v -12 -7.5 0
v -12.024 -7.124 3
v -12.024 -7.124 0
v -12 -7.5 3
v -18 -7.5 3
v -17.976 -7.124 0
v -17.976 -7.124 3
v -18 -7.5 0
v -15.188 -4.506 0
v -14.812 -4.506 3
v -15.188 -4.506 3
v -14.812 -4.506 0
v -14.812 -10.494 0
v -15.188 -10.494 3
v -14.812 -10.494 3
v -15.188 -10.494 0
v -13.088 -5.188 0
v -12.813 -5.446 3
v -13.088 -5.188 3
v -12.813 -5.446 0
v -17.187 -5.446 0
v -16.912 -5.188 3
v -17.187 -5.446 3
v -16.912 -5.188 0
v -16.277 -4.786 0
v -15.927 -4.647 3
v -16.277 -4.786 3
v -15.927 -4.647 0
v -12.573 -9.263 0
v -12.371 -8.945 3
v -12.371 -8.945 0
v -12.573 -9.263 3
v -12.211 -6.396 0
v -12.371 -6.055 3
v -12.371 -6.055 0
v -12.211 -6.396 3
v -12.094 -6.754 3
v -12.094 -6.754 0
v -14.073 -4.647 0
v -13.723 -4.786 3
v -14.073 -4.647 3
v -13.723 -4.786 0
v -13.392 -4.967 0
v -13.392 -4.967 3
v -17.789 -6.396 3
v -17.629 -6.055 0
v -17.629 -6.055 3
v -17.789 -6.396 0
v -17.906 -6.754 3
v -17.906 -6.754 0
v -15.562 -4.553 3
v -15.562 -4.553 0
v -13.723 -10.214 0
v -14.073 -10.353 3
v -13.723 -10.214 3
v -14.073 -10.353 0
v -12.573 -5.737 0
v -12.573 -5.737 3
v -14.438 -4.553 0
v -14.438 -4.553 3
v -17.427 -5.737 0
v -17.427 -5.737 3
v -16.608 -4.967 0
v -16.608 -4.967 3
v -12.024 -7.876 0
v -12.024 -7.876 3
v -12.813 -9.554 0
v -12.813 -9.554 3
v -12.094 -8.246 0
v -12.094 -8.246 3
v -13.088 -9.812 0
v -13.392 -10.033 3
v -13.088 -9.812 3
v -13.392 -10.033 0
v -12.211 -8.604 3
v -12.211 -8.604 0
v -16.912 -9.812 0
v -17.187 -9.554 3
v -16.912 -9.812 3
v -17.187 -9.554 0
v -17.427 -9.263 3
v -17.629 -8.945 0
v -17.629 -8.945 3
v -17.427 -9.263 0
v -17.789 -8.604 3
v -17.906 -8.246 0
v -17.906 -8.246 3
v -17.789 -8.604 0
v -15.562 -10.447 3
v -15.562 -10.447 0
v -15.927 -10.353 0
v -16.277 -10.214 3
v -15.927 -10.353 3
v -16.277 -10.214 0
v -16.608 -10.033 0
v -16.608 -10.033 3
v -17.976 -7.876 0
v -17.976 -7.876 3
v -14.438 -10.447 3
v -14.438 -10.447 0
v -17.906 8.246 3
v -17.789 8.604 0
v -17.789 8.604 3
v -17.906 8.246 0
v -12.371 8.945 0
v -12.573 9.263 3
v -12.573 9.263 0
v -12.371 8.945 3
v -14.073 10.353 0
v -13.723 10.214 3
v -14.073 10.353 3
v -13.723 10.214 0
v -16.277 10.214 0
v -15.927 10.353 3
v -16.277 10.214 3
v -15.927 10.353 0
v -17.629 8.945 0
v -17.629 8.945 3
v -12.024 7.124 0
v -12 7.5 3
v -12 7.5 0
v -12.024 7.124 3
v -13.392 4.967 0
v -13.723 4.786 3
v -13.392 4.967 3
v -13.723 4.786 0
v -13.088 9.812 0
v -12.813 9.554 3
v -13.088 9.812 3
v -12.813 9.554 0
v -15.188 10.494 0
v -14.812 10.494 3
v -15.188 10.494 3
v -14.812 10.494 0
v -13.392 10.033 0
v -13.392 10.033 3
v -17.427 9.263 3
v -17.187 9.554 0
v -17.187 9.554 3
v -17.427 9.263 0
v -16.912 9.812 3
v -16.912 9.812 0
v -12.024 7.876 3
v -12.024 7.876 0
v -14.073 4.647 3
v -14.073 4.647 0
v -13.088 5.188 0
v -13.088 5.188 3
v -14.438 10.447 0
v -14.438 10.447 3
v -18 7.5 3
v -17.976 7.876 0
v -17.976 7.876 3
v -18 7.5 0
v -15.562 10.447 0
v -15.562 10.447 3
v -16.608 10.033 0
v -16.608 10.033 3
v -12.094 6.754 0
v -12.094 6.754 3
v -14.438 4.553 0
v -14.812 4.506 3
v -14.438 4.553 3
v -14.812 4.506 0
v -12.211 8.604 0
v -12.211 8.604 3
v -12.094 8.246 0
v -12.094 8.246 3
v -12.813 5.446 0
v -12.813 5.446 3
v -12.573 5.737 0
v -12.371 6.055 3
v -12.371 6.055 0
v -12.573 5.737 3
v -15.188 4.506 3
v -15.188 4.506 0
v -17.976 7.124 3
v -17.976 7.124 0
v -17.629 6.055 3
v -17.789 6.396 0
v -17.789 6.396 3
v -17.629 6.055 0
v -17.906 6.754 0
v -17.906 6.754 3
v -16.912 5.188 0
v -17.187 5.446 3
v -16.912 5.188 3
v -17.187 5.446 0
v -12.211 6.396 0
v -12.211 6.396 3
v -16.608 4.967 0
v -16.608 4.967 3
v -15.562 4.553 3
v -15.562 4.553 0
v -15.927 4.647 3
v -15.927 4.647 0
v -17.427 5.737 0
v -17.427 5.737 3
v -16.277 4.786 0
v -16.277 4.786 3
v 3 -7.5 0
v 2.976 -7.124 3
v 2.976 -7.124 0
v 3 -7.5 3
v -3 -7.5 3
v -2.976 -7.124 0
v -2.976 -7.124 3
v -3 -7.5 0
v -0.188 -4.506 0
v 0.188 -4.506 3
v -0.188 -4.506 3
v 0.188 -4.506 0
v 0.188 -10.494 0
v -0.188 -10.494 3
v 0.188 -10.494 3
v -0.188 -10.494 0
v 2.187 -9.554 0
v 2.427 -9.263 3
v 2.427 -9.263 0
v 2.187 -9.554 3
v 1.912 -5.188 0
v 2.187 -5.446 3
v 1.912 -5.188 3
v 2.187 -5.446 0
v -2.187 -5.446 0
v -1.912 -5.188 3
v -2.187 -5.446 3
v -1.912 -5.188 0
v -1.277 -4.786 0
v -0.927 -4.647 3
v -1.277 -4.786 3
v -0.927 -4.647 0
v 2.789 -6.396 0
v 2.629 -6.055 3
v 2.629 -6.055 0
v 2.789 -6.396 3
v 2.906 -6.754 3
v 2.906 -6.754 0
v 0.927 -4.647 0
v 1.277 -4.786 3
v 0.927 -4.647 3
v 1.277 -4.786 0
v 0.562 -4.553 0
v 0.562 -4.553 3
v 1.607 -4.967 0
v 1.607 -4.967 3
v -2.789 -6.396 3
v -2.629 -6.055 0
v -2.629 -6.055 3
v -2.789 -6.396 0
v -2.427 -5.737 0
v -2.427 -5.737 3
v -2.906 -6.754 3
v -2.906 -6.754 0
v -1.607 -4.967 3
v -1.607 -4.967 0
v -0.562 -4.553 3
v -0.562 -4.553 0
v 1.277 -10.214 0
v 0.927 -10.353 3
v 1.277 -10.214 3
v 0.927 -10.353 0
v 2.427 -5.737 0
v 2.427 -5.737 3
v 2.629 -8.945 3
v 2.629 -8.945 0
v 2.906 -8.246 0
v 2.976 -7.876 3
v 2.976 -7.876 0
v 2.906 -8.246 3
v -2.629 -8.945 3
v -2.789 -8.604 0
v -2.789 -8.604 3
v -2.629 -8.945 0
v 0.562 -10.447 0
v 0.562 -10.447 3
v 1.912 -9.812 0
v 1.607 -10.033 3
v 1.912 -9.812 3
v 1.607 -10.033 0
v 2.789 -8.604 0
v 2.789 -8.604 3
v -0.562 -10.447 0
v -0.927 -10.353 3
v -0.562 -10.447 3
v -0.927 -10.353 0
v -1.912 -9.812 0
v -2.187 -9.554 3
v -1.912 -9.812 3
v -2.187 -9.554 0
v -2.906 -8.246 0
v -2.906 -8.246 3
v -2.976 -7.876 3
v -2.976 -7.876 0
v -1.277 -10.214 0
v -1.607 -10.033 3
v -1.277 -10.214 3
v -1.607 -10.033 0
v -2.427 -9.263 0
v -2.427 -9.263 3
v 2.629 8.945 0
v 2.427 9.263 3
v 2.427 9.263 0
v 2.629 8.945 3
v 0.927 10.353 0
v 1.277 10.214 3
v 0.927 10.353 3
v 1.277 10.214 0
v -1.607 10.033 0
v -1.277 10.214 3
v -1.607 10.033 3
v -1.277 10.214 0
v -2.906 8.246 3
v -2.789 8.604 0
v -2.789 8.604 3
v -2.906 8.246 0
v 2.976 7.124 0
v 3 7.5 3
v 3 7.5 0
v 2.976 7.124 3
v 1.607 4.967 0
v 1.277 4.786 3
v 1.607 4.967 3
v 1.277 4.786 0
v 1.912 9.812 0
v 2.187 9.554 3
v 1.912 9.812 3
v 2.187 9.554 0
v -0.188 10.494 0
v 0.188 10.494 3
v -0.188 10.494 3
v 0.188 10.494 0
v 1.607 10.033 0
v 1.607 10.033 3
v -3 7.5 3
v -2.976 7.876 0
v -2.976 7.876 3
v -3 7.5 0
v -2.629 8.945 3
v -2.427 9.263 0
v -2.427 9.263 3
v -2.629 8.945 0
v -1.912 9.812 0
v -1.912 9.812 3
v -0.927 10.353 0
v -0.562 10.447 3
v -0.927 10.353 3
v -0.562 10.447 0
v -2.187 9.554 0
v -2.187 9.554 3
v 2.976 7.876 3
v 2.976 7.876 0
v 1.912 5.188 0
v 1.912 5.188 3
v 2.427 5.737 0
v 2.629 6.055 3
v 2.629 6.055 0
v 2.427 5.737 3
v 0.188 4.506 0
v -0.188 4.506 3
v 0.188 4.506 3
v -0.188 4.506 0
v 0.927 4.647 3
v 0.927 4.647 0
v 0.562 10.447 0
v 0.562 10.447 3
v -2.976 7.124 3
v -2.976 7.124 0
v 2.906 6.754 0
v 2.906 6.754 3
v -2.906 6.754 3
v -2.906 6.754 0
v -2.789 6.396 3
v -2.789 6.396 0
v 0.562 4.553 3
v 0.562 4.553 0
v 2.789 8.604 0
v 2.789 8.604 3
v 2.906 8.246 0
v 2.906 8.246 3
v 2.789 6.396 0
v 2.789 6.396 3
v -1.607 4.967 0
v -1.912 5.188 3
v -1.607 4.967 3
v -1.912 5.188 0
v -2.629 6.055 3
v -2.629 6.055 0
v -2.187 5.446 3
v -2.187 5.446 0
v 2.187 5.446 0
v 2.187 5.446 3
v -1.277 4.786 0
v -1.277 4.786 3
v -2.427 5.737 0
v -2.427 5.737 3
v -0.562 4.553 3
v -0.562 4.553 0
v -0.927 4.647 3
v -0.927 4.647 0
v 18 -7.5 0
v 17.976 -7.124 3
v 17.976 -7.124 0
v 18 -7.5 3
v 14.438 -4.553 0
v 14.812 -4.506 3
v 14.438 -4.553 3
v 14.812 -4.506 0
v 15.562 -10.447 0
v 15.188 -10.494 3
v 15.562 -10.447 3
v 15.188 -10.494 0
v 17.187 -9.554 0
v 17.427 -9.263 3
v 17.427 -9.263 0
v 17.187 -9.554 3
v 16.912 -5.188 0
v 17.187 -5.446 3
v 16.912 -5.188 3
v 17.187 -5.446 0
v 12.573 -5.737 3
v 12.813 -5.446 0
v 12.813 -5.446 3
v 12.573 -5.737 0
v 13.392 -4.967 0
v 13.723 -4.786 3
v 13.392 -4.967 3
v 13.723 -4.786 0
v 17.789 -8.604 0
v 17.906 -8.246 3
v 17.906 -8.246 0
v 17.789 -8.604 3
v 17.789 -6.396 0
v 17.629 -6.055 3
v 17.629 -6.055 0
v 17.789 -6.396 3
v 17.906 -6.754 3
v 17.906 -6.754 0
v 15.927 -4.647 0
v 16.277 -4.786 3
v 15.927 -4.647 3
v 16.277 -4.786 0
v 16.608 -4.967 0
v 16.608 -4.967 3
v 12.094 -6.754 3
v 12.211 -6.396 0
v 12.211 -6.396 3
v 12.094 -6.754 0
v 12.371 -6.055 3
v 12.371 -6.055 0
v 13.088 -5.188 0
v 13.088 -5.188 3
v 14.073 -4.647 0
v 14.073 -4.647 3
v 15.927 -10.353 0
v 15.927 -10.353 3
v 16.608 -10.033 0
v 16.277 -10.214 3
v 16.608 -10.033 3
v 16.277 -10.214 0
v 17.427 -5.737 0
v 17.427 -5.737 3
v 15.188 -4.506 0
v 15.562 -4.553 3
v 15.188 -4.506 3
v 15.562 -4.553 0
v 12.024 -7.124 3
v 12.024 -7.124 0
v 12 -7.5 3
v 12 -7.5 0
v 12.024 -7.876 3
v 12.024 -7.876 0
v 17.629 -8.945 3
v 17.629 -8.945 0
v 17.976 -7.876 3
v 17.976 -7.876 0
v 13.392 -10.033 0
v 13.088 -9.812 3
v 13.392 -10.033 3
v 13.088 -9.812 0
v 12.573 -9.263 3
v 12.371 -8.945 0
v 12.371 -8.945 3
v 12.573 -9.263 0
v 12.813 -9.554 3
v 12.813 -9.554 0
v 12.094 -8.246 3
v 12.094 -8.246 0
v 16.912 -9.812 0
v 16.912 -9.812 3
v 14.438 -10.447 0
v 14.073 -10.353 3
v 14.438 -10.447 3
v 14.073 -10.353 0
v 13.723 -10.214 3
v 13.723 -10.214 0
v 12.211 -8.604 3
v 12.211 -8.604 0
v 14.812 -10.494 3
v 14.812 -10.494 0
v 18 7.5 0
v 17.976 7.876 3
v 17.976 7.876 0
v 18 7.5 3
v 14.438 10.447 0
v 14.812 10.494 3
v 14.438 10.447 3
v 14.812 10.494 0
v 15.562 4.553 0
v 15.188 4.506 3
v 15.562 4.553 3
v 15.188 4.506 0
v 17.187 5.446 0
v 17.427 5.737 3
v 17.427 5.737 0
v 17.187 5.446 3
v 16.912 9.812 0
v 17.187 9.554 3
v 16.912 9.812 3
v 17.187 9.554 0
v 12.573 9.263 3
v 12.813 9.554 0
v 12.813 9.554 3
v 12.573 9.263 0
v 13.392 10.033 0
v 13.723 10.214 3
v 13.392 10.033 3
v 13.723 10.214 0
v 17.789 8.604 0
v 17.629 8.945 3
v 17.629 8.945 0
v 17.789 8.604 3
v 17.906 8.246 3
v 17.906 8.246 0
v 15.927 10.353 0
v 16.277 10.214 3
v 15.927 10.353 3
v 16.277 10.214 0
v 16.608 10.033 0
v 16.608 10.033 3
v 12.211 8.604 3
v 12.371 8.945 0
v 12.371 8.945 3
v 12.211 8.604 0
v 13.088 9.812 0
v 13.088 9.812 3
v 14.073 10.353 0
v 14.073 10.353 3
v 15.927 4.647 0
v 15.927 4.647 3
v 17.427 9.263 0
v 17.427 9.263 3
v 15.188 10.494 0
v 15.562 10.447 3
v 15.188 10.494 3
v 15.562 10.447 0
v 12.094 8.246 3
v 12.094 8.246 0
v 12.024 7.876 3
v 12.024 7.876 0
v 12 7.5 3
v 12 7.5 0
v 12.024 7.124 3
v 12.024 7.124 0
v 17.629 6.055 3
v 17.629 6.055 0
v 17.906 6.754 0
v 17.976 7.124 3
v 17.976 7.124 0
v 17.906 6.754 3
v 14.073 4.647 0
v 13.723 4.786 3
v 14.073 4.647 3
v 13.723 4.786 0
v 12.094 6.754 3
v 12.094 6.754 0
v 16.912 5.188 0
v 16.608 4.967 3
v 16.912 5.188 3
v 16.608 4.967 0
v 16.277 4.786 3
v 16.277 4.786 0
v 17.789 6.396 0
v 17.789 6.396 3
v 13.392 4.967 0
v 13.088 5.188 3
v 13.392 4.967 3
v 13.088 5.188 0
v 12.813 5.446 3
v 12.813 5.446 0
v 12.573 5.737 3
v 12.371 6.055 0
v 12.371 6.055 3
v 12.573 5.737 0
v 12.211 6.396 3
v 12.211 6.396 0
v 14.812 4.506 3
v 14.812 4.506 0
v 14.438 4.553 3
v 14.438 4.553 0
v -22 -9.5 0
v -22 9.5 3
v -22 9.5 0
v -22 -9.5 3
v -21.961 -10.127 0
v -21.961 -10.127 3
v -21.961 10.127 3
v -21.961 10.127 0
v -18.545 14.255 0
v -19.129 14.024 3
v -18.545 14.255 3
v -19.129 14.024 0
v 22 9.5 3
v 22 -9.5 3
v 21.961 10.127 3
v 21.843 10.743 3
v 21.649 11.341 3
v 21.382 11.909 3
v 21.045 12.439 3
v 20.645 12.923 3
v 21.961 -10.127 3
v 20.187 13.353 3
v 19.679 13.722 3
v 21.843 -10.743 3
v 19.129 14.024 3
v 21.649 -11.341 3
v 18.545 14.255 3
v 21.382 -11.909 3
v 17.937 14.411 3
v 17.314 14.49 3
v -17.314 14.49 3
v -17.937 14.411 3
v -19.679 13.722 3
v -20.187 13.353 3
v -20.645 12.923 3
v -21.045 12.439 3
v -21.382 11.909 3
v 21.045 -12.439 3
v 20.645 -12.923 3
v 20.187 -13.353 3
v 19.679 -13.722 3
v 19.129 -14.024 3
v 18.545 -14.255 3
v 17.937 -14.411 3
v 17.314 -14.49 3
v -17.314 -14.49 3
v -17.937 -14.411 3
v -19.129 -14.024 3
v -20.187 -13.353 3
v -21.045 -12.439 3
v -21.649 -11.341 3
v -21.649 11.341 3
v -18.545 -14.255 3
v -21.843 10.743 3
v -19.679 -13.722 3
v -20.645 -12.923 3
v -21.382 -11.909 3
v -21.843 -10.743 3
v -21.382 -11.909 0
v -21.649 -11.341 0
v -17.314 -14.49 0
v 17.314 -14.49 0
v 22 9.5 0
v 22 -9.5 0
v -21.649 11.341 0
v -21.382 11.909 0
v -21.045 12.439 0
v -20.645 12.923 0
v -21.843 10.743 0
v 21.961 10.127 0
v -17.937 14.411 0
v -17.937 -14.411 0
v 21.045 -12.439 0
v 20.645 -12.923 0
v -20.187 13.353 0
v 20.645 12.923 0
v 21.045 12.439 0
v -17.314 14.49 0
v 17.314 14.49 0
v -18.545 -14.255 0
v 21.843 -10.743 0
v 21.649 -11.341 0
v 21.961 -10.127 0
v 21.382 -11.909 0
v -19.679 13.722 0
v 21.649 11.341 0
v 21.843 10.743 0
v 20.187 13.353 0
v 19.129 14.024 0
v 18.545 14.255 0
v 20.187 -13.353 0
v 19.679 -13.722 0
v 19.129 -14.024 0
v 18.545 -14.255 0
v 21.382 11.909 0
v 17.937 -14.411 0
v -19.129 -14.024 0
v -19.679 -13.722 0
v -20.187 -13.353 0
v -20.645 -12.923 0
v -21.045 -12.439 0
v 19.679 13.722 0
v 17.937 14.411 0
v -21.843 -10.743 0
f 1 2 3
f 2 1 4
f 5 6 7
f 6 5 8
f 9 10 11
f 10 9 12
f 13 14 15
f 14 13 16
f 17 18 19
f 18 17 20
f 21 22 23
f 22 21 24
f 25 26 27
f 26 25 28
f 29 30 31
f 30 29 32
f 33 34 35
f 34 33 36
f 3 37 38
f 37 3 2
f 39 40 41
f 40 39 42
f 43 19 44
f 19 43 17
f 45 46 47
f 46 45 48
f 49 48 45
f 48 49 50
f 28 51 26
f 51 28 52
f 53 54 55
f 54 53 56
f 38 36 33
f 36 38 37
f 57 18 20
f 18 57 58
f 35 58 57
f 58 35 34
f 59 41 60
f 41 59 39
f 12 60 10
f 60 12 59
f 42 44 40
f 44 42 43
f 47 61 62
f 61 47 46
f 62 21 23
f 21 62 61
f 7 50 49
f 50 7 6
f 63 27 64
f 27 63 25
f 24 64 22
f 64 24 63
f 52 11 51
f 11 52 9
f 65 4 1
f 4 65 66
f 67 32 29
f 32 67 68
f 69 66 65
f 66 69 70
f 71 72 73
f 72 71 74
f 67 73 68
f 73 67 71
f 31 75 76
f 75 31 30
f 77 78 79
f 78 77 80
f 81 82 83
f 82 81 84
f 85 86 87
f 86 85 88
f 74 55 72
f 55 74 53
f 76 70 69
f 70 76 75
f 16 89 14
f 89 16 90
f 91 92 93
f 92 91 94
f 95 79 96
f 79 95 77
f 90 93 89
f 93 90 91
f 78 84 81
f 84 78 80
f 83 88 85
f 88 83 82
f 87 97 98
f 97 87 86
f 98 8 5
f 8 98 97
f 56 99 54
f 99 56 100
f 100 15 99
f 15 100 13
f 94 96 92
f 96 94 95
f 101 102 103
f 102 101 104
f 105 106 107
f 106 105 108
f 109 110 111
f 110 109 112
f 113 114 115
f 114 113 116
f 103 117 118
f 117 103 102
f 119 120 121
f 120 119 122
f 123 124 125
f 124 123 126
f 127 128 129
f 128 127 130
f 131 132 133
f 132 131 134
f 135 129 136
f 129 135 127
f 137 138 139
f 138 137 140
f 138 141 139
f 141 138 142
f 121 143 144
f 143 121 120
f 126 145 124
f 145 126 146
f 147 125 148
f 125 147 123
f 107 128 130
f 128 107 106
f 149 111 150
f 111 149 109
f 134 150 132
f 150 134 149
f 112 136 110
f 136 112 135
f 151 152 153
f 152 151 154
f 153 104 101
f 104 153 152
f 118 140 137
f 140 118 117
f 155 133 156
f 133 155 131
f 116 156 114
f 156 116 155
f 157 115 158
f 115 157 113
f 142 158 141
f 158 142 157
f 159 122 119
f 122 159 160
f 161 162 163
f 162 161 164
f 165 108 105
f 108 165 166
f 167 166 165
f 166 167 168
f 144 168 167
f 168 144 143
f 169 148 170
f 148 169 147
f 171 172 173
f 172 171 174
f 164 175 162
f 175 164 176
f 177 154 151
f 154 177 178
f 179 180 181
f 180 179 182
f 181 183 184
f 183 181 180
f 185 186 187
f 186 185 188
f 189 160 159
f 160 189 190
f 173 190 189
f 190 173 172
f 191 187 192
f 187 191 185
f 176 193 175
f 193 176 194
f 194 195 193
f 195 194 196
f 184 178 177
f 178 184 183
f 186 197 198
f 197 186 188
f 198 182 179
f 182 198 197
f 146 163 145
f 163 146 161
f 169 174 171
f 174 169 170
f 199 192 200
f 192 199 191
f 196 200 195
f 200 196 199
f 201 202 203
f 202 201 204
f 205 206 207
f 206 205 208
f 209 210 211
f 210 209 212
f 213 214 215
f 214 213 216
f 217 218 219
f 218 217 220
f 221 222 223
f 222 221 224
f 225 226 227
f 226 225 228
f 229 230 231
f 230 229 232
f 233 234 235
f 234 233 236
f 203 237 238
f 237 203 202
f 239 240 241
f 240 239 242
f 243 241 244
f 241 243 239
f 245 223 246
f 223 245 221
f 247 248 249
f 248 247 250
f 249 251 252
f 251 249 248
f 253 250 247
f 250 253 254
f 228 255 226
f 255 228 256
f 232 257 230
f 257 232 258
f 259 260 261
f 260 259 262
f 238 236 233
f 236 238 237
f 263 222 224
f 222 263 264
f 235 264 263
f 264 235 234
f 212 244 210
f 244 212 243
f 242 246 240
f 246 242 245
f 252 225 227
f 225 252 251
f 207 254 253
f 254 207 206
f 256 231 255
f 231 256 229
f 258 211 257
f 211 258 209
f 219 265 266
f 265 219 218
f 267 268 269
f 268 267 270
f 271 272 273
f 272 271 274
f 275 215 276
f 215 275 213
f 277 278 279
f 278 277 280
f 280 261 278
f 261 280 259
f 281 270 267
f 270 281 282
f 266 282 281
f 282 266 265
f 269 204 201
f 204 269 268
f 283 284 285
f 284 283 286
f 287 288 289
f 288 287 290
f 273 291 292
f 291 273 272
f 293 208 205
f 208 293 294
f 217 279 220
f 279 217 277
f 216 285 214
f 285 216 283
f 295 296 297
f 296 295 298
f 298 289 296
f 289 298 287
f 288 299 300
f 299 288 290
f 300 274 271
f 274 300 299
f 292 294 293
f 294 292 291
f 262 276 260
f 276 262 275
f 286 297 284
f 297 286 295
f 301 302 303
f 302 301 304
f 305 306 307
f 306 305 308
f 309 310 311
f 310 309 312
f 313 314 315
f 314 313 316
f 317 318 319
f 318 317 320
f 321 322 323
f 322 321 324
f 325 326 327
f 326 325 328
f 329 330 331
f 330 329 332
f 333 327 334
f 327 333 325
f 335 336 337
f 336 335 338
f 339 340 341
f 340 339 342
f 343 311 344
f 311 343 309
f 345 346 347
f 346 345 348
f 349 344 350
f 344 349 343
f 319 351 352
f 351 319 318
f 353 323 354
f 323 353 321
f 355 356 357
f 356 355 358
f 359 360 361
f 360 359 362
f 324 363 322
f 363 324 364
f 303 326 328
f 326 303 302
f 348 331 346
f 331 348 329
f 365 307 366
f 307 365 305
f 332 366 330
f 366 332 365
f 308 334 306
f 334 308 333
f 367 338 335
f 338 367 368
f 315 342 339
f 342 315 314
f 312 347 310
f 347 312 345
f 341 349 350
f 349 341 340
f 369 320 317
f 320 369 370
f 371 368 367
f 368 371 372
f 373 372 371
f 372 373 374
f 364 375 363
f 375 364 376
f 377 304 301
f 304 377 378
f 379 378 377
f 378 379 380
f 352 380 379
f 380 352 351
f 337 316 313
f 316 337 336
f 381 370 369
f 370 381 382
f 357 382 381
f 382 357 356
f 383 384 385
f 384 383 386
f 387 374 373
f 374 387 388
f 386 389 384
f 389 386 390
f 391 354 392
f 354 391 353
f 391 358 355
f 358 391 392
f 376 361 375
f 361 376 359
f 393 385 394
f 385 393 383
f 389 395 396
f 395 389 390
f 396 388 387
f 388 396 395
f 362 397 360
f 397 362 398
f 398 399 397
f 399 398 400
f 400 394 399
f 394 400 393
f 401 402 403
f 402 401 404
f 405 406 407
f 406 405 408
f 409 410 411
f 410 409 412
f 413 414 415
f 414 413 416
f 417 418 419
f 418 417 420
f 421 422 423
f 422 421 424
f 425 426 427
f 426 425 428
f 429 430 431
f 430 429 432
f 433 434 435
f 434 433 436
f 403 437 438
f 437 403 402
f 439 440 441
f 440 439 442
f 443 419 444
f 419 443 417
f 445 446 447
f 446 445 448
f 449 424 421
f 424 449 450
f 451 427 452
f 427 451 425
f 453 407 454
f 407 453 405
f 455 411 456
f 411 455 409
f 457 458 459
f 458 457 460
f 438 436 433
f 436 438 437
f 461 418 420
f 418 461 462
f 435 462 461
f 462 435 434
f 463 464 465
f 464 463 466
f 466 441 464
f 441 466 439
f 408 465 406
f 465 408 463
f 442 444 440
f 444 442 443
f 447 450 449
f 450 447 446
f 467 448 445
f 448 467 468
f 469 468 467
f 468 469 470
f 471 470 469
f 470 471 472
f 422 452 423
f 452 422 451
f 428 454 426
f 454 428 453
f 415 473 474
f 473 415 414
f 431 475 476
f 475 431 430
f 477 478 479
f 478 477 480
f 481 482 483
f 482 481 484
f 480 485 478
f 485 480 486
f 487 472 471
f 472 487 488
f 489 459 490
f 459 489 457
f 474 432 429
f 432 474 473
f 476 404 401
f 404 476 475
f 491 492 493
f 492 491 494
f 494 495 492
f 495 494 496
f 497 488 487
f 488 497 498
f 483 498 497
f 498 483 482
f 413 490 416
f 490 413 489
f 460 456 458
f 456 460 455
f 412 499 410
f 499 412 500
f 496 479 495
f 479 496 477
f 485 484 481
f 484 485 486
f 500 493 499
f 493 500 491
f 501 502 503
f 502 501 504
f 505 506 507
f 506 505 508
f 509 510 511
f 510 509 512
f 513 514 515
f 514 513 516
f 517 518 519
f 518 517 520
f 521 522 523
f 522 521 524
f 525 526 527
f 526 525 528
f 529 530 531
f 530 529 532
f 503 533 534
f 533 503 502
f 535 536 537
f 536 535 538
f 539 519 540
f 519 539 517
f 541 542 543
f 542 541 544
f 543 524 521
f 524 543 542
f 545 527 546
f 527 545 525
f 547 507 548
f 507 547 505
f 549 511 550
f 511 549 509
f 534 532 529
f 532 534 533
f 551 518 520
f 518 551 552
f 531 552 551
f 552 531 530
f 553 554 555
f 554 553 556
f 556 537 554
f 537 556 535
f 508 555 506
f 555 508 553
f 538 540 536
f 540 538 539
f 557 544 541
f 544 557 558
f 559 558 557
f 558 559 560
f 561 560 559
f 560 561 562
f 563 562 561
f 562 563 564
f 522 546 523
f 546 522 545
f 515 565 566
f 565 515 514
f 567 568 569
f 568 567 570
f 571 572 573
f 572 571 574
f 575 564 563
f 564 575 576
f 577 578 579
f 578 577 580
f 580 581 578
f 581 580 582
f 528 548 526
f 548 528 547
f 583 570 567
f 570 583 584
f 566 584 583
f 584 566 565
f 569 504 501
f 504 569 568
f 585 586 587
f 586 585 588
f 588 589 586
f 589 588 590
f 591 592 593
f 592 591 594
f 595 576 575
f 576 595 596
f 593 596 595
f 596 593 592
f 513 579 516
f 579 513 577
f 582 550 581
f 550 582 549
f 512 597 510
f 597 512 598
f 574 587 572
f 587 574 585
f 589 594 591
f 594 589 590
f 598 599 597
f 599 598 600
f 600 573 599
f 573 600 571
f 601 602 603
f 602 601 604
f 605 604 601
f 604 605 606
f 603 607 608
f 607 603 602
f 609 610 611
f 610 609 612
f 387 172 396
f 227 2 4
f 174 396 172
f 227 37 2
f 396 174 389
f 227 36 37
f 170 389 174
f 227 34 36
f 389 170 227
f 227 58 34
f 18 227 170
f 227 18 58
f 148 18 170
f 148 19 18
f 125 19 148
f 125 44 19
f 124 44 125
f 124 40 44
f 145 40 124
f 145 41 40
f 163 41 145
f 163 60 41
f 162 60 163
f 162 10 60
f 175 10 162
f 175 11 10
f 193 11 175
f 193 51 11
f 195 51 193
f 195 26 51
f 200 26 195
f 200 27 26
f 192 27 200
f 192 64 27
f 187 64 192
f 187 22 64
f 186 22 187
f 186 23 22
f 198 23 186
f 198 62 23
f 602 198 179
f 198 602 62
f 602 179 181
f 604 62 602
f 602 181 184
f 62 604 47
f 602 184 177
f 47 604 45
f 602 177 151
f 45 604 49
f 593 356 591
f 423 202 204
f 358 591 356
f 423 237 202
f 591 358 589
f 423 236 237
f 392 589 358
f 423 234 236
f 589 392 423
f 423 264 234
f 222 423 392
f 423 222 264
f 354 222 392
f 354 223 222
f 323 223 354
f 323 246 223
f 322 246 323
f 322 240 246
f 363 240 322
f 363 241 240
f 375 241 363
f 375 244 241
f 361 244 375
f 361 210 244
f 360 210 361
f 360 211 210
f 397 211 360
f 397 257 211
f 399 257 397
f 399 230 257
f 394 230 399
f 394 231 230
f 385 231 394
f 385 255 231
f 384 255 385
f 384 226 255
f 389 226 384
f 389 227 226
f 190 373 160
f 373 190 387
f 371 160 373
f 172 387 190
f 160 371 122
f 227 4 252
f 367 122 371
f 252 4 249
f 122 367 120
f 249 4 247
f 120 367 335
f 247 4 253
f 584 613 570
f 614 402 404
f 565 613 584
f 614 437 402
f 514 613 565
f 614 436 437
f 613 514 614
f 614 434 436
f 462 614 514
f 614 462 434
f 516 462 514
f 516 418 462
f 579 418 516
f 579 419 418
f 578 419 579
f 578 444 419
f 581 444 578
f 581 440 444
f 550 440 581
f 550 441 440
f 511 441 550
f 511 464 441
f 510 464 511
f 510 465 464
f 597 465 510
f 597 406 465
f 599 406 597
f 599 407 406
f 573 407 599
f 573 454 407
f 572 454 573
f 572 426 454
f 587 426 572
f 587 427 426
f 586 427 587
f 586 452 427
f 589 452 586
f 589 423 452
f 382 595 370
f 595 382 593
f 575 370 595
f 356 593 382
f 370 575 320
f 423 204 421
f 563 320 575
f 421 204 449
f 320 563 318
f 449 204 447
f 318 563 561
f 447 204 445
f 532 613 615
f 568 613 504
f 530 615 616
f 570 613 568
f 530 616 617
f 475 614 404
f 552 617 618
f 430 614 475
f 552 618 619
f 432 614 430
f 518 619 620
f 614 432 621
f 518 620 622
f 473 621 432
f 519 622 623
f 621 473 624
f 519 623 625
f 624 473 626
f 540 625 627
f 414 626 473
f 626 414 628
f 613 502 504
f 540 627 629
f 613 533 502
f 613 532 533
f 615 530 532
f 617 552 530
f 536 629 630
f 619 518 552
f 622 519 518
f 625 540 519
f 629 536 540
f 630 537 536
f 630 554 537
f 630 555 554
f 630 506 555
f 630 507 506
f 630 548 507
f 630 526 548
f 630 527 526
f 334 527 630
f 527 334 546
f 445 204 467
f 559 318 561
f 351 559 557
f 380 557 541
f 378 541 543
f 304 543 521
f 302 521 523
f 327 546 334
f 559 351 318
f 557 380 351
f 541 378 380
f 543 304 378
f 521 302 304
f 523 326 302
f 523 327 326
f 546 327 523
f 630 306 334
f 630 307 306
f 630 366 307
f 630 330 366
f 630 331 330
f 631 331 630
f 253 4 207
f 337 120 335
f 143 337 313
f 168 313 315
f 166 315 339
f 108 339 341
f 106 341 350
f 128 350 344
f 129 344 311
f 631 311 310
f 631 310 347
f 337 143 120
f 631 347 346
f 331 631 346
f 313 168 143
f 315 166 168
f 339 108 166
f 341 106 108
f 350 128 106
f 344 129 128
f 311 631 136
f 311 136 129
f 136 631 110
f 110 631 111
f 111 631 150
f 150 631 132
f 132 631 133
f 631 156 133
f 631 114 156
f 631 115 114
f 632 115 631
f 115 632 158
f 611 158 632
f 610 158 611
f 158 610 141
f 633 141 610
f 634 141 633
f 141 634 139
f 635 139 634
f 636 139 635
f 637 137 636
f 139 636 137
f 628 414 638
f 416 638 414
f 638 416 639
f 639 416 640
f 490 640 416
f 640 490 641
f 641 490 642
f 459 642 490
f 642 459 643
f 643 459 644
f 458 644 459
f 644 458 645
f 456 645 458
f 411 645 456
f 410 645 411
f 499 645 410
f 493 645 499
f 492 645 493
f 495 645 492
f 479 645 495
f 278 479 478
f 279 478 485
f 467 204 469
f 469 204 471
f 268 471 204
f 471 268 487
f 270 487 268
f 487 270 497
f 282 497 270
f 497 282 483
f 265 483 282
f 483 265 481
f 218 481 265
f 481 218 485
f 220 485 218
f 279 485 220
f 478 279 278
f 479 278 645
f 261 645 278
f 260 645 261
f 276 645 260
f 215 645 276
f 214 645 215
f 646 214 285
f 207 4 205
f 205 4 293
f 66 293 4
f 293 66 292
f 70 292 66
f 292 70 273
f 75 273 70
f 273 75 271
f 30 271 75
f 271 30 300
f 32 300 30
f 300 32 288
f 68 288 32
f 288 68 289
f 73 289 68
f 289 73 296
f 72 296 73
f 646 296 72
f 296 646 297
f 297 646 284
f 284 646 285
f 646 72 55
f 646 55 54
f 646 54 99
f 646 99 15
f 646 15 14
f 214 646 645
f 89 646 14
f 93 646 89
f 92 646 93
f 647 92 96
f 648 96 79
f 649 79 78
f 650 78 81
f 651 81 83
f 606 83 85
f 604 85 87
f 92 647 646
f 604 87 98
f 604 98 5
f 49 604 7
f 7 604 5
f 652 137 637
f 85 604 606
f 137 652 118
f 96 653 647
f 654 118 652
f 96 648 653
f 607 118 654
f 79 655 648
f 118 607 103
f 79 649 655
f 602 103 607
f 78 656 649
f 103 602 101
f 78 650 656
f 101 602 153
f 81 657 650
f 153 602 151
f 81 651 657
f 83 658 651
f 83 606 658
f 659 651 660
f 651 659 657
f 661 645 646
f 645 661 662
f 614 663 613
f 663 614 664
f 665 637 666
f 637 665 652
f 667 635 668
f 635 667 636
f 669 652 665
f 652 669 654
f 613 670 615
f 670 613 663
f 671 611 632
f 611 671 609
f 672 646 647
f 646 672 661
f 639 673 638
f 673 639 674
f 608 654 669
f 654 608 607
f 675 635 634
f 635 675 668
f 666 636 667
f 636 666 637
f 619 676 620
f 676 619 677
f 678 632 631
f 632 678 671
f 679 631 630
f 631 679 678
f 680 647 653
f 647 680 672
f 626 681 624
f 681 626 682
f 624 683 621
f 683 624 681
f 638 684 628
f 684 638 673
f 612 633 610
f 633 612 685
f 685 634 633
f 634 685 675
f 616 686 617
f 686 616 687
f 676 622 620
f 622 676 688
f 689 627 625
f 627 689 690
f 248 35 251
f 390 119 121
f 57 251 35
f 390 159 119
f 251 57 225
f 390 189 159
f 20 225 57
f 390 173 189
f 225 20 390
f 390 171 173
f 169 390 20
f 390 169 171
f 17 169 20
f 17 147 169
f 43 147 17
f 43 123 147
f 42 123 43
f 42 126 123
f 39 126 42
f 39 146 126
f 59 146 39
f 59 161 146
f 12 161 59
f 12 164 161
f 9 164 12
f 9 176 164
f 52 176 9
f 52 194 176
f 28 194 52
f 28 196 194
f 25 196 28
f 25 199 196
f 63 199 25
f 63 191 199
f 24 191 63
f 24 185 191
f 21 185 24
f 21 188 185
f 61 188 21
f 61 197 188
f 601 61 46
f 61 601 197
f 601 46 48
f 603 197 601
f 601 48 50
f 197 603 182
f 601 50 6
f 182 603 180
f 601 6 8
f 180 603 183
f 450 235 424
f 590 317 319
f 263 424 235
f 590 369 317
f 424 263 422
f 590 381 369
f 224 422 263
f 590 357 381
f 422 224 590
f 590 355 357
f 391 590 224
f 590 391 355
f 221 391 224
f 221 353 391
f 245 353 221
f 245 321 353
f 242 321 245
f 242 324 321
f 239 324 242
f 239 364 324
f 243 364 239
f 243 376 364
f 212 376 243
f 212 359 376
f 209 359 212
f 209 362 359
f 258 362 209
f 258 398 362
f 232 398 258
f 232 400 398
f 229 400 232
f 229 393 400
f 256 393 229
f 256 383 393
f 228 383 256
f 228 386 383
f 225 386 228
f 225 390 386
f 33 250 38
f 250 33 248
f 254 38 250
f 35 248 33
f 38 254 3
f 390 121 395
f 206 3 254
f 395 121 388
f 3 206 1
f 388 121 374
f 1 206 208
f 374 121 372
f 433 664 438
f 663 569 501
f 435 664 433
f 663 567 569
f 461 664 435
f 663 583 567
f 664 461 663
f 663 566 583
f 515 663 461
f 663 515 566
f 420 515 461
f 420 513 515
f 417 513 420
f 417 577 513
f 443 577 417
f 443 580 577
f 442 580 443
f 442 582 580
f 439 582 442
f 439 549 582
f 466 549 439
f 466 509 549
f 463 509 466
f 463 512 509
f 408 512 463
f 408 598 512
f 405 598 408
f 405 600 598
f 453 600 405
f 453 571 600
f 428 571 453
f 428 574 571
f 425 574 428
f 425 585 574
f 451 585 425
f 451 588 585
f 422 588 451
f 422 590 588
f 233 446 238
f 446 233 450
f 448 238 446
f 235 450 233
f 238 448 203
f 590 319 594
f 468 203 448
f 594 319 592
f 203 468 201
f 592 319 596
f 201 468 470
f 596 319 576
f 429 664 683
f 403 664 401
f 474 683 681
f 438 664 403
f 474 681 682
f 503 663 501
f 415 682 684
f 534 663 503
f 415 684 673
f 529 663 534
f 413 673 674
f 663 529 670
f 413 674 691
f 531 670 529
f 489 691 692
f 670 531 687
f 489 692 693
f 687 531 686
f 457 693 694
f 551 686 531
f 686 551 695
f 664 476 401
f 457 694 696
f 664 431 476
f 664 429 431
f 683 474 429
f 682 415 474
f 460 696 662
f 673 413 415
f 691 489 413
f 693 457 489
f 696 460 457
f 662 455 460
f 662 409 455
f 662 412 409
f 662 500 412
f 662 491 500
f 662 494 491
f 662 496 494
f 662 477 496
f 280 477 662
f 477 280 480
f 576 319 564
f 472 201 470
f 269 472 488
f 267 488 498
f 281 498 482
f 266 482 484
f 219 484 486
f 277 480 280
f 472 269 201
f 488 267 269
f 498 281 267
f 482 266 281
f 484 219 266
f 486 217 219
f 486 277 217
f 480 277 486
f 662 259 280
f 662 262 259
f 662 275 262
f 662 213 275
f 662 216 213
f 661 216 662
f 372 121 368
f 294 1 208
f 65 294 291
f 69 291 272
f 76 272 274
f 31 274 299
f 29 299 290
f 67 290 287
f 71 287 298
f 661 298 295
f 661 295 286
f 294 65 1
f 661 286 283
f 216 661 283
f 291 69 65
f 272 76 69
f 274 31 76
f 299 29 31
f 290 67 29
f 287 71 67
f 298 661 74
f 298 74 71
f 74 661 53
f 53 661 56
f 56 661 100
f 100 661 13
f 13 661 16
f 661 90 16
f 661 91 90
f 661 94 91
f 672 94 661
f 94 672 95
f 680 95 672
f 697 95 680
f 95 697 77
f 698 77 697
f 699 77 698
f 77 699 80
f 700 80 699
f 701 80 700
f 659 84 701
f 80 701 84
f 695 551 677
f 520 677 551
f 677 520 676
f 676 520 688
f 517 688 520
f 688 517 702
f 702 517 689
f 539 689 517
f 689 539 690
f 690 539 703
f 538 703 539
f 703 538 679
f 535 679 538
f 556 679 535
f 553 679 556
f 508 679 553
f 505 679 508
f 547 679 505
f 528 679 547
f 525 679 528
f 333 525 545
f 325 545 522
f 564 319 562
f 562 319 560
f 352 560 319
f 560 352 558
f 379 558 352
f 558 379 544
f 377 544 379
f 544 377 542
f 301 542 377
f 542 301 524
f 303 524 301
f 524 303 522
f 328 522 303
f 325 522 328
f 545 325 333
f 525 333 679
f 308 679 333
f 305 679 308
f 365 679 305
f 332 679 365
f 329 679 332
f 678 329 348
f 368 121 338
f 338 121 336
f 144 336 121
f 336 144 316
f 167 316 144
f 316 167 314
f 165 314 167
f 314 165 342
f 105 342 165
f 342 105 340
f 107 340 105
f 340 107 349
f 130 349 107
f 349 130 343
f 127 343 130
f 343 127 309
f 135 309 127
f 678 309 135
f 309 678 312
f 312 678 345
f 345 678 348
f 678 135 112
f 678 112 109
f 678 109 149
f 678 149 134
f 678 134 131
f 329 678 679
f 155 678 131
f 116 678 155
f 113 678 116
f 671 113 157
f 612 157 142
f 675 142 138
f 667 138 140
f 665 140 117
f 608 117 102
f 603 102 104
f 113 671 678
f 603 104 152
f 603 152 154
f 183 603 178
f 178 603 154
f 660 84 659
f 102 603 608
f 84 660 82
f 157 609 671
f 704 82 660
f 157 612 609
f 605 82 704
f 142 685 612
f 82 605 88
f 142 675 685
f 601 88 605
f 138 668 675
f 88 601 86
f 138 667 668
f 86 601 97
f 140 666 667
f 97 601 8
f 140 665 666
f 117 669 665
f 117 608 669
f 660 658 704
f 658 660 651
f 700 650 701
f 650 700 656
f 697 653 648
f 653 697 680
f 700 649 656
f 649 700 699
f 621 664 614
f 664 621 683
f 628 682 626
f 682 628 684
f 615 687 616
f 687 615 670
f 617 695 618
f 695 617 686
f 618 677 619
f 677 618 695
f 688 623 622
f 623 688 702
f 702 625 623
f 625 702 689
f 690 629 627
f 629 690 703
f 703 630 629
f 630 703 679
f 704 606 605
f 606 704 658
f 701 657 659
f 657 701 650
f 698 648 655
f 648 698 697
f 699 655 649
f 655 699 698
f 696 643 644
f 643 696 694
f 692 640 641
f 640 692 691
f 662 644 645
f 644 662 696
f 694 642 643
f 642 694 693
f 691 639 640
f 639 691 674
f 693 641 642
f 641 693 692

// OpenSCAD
$fn = 50;


difference() {
	union() {
		translate(v = [0, 0, 0]) {
			rotate(a = [0, 0, 0]) {
				hull() {
					translate(v = [-17.0000000000, 9.5000000000, 0]) {
						rotate(a = [0, 0, 0]) {
							translate(v = [0, 0, 0]) {
								rotate(a = [0, 0, 0]) {
									cylinder(h = 3, r = 5);
								}
							}
						}
					}
					translate(v = [17.0000000000, 9.5000000000, 0]) {
						rotate(a = [0, 0, 0]) {
							translate(v = [0, 0, 0]) {
								rotate(a = [0, 0, 0]) {
									cylinder(h = 3, r = 5);
								}
							}
						}
					}
					translate(v = [-17.0000000000, -9.5000000000, 0]) {
						rotate(a = [0, 0, 0]) {
							translate(v = [0, 0, 0]) {
								rotate(a = [0, 0, 0]) {
									cylinder(h = 3, r = 5);
								}
							}
						}
					}
					translate(v = [17.0000000000, -9.5000000000, 0]) {
						rotate(a = [0, 0, 0]) {
							translate(v = [0, 0, 0]) {
								rotate(a = [0, 0, 0]) {
									cylinder(h = 3, r = 5);
								}
							}
						}
					}
				}
			}
		}
	}
	union() {
		translate(v = [-15.0000000000, -7.5000000000, 0]) {
			rotate(a = [0, 0, 0]) {
				translate(v = [0, 0, -50]) {
					rotate(a = [0, 0, 0]) {
						cylinder(h = 100, r = 3.0000000000);
					}
				}
			}
		}
		translate(v = [-15.0000000000, 7.5000000000, 0]) {
			rotate(a = [0, 0, 0]) {
				translate(v = [0, 0, -50]) {
					rotate(a = [0, 0, 0]) {
						cylinder(h = 100, r = 3.0000000000);
					}
				}
			}
		}
		translate(v = [0.0000000000, -7.5000000000, 0]) {
			rotate(a = [0, 0, 0]) {
				translate(v = [0, 0, -50]) {
					rotate(a = [0, 0, 0]) {
						cylinder(h = 100, r = 3.0000000000);
					}
				}
			}
		}
		translate(v = [0.0000000000, 7.5000000000, 0]) {
			rotate(a = [0, 0, 0]) {
				translate(v = [0, 0, -50]) {
					rotate(a = [0, 0, 0]) {
						cylinder(h = 100, r = 3.0000000000);
					}
				}
			}
		}
		translate(v = [15.0000000000, -7.5000000000, 0]) {
			rotate(a = [0, 0, 0]) {
				translate(v = [0, 0, -50]) {
					rotate(a = [0, 0, 0]) {
						cylinder(h = 100, r = 3.0000000000);
					}
				}
			}
		}
		translate(v = [15.0000000000, 7.5000000000, 0]) {
			rotate(a = [0, 0, 0]) {
				translate(v = [0, 0, -50]) {
					rotate(a = [0, 0, 0]) {
						cylinder(h = 100, r = 3.0000000000);
					}
				}
			}
		}
	}
}
